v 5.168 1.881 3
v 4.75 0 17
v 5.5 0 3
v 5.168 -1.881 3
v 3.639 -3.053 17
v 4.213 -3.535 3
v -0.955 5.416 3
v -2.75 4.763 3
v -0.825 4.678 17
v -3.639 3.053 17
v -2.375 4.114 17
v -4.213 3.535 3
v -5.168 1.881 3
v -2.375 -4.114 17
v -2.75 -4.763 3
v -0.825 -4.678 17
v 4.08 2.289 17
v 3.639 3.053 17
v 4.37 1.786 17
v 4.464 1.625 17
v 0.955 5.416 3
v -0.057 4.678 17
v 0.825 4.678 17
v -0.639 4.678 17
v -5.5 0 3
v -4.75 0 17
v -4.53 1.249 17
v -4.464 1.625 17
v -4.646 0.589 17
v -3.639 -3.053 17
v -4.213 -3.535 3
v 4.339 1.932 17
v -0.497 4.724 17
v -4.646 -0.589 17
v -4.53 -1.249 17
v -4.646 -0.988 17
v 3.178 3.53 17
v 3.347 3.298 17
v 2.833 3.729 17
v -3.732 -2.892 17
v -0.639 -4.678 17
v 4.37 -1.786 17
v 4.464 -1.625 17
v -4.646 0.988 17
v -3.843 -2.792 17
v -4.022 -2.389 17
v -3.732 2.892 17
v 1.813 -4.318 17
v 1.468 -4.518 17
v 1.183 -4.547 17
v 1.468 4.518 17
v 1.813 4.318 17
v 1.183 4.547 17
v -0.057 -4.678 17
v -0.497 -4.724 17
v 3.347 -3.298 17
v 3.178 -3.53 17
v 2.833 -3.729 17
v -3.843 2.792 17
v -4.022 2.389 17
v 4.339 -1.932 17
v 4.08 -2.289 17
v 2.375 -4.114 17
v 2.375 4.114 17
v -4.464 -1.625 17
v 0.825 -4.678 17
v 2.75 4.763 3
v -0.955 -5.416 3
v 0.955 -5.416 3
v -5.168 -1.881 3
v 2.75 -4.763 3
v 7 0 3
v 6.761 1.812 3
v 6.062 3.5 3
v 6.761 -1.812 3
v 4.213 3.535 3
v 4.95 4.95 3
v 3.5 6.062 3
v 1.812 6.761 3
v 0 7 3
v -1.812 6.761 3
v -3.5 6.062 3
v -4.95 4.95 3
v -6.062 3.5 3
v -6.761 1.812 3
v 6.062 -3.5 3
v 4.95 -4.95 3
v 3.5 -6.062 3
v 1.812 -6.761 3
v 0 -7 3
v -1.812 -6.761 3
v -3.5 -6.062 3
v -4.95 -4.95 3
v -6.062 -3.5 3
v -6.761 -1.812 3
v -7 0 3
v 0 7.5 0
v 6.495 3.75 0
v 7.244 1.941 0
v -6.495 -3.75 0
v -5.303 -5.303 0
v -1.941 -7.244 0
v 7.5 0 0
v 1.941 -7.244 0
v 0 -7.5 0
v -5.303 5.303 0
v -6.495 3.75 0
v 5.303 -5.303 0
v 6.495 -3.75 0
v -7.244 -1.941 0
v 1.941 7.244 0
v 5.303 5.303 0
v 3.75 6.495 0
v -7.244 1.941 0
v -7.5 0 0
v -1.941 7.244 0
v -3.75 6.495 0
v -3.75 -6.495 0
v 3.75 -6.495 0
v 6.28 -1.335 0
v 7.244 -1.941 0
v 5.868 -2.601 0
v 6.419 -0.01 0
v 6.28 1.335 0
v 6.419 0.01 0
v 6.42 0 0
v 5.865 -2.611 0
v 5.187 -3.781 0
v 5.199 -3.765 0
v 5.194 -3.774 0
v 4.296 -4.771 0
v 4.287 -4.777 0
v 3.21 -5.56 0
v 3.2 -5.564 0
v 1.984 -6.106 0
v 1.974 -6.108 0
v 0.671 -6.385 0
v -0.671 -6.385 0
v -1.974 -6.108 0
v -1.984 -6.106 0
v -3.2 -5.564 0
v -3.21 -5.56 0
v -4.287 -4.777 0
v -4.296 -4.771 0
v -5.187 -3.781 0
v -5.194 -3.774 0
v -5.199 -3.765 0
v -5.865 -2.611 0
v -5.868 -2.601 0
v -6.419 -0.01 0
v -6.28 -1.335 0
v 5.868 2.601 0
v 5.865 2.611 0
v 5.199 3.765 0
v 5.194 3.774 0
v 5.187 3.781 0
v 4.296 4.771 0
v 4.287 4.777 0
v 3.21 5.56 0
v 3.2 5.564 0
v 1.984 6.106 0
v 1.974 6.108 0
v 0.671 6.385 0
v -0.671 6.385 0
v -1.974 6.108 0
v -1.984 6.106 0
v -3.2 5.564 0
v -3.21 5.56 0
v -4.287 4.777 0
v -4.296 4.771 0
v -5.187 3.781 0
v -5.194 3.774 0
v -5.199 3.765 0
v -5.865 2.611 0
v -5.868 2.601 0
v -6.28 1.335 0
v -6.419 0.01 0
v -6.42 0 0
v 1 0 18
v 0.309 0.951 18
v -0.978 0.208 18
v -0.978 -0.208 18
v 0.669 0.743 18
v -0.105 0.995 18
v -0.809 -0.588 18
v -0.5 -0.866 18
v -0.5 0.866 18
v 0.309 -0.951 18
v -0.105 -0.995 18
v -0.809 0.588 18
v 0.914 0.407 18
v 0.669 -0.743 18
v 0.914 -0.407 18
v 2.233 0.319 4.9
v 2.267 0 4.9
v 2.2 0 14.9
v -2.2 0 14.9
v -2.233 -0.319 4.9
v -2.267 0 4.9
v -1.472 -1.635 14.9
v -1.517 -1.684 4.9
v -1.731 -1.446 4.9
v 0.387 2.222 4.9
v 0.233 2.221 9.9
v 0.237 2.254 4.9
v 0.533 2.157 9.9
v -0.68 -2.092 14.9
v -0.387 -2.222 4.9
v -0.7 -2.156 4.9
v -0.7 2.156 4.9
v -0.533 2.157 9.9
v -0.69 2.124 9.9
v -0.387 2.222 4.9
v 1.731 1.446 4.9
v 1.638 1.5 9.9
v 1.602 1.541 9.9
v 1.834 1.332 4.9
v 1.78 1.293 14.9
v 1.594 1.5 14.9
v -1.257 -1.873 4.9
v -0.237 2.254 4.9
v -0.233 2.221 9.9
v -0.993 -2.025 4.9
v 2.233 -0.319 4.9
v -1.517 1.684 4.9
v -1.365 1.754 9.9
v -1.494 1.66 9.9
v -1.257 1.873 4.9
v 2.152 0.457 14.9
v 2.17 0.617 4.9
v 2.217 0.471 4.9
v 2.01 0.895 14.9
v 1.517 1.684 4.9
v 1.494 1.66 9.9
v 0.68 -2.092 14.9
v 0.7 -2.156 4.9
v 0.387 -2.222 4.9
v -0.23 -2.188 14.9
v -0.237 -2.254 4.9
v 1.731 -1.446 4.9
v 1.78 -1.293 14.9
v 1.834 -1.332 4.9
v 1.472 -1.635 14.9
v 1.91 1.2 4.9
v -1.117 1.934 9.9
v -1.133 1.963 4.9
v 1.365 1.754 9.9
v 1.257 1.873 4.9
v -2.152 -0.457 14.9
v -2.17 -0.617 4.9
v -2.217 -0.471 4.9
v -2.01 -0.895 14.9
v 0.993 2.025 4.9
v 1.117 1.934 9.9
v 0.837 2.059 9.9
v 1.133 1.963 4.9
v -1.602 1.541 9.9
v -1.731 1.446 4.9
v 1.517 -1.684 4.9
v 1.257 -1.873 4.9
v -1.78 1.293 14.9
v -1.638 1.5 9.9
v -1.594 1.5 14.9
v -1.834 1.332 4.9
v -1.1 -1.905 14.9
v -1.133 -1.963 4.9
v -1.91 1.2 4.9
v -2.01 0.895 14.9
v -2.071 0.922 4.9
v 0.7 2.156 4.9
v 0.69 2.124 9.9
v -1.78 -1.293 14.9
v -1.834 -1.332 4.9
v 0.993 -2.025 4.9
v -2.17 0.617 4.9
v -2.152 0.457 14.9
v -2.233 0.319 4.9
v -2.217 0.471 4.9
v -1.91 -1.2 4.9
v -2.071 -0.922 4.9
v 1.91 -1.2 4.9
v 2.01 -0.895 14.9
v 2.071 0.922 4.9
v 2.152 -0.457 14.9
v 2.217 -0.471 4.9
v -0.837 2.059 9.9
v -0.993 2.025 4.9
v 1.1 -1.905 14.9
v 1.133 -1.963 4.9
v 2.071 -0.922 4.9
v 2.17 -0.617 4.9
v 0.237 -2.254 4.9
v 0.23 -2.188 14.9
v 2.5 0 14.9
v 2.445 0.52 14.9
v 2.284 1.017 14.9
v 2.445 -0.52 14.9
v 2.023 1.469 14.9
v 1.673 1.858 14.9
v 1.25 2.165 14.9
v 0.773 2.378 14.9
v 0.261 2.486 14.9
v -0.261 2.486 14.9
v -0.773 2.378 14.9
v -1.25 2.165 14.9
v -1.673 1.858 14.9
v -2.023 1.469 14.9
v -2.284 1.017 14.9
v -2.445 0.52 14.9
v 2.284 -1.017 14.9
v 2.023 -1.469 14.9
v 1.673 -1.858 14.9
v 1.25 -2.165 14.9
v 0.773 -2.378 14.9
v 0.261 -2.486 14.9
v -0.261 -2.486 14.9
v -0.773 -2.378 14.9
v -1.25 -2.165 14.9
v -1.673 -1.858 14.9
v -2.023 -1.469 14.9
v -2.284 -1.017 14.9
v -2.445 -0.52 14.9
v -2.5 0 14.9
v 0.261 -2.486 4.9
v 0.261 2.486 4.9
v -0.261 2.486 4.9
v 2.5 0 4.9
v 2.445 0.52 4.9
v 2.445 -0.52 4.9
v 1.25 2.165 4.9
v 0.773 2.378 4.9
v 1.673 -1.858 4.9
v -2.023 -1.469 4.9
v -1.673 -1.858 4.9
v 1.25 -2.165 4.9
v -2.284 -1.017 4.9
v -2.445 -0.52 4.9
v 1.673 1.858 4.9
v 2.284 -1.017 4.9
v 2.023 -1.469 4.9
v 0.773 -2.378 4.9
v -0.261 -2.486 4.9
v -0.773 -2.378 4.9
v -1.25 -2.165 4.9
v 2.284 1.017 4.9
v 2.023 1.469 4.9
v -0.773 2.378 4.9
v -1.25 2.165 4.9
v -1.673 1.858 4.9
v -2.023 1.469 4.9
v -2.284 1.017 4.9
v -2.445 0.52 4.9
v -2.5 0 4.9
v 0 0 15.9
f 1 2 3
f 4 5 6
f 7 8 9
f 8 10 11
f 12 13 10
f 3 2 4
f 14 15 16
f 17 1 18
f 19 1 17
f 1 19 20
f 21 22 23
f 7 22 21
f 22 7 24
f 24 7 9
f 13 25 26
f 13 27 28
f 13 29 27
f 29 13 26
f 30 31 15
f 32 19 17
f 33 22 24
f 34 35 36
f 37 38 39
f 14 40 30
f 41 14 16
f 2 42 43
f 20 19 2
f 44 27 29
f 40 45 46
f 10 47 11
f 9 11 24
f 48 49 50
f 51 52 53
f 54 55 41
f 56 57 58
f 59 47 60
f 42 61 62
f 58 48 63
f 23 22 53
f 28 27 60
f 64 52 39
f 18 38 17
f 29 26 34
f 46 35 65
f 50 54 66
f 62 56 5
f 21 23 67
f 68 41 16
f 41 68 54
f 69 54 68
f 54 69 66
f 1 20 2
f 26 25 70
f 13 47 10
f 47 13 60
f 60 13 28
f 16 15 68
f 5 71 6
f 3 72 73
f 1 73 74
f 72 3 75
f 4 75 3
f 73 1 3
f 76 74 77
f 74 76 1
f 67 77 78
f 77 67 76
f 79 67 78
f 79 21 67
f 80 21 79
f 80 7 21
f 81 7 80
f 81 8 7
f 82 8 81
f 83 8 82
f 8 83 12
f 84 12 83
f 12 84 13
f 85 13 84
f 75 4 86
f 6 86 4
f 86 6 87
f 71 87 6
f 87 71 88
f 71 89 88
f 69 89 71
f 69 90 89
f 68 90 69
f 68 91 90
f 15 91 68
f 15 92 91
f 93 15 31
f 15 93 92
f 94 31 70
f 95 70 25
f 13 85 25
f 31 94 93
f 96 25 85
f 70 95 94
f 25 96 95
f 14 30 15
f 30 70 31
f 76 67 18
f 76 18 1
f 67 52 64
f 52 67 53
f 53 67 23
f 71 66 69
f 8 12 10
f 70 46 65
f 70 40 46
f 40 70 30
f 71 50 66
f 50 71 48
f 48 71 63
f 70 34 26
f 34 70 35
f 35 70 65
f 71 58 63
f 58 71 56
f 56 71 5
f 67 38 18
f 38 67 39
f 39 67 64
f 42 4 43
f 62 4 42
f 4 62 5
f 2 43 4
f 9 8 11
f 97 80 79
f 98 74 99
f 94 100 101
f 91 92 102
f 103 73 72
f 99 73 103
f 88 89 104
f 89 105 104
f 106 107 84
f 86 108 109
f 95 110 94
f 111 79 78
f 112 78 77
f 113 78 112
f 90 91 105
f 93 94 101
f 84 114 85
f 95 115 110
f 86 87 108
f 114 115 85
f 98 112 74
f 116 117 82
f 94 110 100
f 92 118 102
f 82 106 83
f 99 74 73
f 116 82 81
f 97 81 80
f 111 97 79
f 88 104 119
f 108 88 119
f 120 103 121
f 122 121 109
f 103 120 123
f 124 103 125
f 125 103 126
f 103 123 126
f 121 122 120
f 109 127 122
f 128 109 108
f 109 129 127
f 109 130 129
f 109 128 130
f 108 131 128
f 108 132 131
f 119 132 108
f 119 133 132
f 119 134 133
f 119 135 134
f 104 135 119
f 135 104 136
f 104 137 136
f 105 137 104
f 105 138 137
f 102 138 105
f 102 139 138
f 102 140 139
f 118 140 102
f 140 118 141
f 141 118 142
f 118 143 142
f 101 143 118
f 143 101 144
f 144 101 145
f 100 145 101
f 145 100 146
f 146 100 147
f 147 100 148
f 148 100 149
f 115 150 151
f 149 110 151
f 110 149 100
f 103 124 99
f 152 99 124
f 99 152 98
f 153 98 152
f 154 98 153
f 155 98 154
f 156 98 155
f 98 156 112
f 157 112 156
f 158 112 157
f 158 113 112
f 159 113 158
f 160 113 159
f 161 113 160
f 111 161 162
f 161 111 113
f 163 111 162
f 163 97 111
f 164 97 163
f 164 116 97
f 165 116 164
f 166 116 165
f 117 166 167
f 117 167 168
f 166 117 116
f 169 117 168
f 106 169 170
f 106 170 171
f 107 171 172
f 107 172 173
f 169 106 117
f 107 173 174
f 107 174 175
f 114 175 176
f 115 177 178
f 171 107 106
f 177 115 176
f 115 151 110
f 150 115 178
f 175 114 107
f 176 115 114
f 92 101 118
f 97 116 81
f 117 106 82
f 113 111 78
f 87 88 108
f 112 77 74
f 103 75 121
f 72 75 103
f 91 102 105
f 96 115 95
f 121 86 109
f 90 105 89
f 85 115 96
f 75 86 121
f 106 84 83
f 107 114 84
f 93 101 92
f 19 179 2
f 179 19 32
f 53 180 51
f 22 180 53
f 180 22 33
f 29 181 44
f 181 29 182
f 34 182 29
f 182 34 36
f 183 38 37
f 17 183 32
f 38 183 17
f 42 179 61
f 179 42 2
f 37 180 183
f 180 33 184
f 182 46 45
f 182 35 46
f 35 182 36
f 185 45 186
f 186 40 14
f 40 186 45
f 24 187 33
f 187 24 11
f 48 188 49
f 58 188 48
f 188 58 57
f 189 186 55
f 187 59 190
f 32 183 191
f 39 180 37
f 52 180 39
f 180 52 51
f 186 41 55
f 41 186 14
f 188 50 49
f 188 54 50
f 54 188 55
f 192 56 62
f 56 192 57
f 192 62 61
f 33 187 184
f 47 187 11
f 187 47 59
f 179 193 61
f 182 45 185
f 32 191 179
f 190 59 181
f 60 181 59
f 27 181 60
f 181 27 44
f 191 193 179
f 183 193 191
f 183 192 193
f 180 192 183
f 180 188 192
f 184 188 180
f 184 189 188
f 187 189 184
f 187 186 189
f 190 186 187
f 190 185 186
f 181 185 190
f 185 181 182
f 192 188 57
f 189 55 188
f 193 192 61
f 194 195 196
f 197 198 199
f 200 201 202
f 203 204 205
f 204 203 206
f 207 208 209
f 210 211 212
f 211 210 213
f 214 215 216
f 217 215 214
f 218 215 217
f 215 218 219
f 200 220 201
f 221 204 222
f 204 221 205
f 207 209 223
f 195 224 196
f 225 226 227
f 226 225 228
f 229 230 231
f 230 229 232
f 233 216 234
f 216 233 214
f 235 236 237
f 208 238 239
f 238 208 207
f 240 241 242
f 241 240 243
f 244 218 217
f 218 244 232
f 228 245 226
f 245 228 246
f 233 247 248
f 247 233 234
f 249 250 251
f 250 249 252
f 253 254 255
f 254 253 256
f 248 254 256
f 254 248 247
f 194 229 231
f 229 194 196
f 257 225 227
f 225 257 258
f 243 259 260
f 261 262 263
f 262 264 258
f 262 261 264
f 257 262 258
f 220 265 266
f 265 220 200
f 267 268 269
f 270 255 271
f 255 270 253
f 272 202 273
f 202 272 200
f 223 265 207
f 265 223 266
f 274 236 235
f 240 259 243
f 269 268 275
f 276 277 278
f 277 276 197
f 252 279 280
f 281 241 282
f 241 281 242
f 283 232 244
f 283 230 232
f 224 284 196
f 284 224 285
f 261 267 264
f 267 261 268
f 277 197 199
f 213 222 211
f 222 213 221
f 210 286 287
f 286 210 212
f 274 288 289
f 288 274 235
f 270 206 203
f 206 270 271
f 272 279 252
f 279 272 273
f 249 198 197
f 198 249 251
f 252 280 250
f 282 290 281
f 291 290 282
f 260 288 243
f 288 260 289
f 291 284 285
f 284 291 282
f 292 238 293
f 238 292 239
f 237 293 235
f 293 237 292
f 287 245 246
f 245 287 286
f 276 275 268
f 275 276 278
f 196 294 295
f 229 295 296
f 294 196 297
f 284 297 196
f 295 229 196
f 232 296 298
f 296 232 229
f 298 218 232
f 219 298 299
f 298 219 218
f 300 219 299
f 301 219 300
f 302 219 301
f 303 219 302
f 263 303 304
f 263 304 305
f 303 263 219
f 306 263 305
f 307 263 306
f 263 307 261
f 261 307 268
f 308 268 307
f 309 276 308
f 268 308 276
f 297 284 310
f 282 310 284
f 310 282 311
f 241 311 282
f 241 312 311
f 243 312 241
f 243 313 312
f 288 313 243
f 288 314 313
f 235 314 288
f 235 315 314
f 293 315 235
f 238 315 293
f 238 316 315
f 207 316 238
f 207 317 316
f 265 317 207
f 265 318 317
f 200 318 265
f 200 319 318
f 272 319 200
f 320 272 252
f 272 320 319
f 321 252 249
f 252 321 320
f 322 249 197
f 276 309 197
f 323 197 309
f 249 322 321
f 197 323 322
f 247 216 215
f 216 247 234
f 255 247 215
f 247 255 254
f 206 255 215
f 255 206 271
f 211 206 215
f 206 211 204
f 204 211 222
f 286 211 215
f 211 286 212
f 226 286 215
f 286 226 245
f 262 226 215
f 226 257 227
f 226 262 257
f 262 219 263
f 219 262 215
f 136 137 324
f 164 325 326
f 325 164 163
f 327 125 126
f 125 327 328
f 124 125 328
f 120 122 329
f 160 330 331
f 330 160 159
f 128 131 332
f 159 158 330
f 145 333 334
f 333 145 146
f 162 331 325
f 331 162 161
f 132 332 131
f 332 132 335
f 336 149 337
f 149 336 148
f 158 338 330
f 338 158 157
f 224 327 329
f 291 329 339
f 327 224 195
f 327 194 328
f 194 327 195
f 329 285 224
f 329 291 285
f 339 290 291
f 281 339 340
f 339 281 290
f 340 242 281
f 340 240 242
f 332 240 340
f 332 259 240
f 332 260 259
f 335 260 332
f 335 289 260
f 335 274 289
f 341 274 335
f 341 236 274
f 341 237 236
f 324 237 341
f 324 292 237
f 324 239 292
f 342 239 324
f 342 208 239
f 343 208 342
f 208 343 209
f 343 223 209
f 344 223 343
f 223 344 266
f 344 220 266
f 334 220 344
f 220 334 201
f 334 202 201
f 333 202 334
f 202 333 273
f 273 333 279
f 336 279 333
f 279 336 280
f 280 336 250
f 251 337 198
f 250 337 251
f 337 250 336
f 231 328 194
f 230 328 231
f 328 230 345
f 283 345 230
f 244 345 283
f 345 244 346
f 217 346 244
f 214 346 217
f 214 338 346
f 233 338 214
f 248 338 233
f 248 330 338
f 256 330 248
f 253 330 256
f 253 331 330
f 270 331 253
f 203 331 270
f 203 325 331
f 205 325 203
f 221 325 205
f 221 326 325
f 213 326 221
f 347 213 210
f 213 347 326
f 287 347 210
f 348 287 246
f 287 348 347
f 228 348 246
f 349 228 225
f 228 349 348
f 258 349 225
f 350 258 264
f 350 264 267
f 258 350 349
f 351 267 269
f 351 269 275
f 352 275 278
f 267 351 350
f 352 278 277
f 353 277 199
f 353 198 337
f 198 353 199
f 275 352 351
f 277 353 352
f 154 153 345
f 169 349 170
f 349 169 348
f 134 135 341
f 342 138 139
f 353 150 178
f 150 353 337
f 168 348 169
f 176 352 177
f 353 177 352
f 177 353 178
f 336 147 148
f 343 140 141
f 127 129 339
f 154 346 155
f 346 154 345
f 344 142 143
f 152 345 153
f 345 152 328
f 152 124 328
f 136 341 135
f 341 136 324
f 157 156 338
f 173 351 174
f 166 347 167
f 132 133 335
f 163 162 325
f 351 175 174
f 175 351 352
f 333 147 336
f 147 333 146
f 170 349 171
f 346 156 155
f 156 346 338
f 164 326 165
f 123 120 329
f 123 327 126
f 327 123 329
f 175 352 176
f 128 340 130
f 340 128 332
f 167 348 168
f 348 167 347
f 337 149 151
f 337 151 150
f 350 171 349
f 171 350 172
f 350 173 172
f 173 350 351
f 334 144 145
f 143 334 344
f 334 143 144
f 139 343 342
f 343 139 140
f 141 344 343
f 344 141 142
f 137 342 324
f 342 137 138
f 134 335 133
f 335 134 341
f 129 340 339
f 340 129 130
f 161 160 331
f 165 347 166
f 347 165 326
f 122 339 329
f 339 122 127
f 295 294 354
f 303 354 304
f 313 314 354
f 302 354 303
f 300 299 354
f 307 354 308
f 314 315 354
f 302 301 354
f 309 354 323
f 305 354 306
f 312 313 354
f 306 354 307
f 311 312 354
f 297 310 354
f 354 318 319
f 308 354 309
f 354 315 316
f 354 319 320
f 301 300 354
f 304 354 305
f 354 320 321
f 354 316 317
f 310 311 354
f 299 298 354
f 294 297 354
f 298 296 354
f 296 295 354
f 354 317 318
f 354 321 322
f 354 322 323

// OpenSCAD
difference(){
union(){
translate([0,0,3]) cylinder(14,5.5,4.75);
cylinder(3,7.5,7);  
translate([0,0,17]) cylinder(1,4.75,1);
}

translate([0,0,-0.1])
union(){
cylinder(5,6.5,2.5);  
//cylinder(1.2,6.5,6);
//translate([0,0,1.2])cylinder(0.8,6,4.25);    
//translate([0,0,2])cylinder(1.2,4.25,4);
//translate([0,0,3.2])cylinder(0.9,4,2);  
$fn=30;
difference() {
    cylinder(15,2.3,2.2);
    {translate([-5,1.5,10])cube(10,10,15);}}
    translate([0,0,15])cylinder(1,2.5,0);
}
}
